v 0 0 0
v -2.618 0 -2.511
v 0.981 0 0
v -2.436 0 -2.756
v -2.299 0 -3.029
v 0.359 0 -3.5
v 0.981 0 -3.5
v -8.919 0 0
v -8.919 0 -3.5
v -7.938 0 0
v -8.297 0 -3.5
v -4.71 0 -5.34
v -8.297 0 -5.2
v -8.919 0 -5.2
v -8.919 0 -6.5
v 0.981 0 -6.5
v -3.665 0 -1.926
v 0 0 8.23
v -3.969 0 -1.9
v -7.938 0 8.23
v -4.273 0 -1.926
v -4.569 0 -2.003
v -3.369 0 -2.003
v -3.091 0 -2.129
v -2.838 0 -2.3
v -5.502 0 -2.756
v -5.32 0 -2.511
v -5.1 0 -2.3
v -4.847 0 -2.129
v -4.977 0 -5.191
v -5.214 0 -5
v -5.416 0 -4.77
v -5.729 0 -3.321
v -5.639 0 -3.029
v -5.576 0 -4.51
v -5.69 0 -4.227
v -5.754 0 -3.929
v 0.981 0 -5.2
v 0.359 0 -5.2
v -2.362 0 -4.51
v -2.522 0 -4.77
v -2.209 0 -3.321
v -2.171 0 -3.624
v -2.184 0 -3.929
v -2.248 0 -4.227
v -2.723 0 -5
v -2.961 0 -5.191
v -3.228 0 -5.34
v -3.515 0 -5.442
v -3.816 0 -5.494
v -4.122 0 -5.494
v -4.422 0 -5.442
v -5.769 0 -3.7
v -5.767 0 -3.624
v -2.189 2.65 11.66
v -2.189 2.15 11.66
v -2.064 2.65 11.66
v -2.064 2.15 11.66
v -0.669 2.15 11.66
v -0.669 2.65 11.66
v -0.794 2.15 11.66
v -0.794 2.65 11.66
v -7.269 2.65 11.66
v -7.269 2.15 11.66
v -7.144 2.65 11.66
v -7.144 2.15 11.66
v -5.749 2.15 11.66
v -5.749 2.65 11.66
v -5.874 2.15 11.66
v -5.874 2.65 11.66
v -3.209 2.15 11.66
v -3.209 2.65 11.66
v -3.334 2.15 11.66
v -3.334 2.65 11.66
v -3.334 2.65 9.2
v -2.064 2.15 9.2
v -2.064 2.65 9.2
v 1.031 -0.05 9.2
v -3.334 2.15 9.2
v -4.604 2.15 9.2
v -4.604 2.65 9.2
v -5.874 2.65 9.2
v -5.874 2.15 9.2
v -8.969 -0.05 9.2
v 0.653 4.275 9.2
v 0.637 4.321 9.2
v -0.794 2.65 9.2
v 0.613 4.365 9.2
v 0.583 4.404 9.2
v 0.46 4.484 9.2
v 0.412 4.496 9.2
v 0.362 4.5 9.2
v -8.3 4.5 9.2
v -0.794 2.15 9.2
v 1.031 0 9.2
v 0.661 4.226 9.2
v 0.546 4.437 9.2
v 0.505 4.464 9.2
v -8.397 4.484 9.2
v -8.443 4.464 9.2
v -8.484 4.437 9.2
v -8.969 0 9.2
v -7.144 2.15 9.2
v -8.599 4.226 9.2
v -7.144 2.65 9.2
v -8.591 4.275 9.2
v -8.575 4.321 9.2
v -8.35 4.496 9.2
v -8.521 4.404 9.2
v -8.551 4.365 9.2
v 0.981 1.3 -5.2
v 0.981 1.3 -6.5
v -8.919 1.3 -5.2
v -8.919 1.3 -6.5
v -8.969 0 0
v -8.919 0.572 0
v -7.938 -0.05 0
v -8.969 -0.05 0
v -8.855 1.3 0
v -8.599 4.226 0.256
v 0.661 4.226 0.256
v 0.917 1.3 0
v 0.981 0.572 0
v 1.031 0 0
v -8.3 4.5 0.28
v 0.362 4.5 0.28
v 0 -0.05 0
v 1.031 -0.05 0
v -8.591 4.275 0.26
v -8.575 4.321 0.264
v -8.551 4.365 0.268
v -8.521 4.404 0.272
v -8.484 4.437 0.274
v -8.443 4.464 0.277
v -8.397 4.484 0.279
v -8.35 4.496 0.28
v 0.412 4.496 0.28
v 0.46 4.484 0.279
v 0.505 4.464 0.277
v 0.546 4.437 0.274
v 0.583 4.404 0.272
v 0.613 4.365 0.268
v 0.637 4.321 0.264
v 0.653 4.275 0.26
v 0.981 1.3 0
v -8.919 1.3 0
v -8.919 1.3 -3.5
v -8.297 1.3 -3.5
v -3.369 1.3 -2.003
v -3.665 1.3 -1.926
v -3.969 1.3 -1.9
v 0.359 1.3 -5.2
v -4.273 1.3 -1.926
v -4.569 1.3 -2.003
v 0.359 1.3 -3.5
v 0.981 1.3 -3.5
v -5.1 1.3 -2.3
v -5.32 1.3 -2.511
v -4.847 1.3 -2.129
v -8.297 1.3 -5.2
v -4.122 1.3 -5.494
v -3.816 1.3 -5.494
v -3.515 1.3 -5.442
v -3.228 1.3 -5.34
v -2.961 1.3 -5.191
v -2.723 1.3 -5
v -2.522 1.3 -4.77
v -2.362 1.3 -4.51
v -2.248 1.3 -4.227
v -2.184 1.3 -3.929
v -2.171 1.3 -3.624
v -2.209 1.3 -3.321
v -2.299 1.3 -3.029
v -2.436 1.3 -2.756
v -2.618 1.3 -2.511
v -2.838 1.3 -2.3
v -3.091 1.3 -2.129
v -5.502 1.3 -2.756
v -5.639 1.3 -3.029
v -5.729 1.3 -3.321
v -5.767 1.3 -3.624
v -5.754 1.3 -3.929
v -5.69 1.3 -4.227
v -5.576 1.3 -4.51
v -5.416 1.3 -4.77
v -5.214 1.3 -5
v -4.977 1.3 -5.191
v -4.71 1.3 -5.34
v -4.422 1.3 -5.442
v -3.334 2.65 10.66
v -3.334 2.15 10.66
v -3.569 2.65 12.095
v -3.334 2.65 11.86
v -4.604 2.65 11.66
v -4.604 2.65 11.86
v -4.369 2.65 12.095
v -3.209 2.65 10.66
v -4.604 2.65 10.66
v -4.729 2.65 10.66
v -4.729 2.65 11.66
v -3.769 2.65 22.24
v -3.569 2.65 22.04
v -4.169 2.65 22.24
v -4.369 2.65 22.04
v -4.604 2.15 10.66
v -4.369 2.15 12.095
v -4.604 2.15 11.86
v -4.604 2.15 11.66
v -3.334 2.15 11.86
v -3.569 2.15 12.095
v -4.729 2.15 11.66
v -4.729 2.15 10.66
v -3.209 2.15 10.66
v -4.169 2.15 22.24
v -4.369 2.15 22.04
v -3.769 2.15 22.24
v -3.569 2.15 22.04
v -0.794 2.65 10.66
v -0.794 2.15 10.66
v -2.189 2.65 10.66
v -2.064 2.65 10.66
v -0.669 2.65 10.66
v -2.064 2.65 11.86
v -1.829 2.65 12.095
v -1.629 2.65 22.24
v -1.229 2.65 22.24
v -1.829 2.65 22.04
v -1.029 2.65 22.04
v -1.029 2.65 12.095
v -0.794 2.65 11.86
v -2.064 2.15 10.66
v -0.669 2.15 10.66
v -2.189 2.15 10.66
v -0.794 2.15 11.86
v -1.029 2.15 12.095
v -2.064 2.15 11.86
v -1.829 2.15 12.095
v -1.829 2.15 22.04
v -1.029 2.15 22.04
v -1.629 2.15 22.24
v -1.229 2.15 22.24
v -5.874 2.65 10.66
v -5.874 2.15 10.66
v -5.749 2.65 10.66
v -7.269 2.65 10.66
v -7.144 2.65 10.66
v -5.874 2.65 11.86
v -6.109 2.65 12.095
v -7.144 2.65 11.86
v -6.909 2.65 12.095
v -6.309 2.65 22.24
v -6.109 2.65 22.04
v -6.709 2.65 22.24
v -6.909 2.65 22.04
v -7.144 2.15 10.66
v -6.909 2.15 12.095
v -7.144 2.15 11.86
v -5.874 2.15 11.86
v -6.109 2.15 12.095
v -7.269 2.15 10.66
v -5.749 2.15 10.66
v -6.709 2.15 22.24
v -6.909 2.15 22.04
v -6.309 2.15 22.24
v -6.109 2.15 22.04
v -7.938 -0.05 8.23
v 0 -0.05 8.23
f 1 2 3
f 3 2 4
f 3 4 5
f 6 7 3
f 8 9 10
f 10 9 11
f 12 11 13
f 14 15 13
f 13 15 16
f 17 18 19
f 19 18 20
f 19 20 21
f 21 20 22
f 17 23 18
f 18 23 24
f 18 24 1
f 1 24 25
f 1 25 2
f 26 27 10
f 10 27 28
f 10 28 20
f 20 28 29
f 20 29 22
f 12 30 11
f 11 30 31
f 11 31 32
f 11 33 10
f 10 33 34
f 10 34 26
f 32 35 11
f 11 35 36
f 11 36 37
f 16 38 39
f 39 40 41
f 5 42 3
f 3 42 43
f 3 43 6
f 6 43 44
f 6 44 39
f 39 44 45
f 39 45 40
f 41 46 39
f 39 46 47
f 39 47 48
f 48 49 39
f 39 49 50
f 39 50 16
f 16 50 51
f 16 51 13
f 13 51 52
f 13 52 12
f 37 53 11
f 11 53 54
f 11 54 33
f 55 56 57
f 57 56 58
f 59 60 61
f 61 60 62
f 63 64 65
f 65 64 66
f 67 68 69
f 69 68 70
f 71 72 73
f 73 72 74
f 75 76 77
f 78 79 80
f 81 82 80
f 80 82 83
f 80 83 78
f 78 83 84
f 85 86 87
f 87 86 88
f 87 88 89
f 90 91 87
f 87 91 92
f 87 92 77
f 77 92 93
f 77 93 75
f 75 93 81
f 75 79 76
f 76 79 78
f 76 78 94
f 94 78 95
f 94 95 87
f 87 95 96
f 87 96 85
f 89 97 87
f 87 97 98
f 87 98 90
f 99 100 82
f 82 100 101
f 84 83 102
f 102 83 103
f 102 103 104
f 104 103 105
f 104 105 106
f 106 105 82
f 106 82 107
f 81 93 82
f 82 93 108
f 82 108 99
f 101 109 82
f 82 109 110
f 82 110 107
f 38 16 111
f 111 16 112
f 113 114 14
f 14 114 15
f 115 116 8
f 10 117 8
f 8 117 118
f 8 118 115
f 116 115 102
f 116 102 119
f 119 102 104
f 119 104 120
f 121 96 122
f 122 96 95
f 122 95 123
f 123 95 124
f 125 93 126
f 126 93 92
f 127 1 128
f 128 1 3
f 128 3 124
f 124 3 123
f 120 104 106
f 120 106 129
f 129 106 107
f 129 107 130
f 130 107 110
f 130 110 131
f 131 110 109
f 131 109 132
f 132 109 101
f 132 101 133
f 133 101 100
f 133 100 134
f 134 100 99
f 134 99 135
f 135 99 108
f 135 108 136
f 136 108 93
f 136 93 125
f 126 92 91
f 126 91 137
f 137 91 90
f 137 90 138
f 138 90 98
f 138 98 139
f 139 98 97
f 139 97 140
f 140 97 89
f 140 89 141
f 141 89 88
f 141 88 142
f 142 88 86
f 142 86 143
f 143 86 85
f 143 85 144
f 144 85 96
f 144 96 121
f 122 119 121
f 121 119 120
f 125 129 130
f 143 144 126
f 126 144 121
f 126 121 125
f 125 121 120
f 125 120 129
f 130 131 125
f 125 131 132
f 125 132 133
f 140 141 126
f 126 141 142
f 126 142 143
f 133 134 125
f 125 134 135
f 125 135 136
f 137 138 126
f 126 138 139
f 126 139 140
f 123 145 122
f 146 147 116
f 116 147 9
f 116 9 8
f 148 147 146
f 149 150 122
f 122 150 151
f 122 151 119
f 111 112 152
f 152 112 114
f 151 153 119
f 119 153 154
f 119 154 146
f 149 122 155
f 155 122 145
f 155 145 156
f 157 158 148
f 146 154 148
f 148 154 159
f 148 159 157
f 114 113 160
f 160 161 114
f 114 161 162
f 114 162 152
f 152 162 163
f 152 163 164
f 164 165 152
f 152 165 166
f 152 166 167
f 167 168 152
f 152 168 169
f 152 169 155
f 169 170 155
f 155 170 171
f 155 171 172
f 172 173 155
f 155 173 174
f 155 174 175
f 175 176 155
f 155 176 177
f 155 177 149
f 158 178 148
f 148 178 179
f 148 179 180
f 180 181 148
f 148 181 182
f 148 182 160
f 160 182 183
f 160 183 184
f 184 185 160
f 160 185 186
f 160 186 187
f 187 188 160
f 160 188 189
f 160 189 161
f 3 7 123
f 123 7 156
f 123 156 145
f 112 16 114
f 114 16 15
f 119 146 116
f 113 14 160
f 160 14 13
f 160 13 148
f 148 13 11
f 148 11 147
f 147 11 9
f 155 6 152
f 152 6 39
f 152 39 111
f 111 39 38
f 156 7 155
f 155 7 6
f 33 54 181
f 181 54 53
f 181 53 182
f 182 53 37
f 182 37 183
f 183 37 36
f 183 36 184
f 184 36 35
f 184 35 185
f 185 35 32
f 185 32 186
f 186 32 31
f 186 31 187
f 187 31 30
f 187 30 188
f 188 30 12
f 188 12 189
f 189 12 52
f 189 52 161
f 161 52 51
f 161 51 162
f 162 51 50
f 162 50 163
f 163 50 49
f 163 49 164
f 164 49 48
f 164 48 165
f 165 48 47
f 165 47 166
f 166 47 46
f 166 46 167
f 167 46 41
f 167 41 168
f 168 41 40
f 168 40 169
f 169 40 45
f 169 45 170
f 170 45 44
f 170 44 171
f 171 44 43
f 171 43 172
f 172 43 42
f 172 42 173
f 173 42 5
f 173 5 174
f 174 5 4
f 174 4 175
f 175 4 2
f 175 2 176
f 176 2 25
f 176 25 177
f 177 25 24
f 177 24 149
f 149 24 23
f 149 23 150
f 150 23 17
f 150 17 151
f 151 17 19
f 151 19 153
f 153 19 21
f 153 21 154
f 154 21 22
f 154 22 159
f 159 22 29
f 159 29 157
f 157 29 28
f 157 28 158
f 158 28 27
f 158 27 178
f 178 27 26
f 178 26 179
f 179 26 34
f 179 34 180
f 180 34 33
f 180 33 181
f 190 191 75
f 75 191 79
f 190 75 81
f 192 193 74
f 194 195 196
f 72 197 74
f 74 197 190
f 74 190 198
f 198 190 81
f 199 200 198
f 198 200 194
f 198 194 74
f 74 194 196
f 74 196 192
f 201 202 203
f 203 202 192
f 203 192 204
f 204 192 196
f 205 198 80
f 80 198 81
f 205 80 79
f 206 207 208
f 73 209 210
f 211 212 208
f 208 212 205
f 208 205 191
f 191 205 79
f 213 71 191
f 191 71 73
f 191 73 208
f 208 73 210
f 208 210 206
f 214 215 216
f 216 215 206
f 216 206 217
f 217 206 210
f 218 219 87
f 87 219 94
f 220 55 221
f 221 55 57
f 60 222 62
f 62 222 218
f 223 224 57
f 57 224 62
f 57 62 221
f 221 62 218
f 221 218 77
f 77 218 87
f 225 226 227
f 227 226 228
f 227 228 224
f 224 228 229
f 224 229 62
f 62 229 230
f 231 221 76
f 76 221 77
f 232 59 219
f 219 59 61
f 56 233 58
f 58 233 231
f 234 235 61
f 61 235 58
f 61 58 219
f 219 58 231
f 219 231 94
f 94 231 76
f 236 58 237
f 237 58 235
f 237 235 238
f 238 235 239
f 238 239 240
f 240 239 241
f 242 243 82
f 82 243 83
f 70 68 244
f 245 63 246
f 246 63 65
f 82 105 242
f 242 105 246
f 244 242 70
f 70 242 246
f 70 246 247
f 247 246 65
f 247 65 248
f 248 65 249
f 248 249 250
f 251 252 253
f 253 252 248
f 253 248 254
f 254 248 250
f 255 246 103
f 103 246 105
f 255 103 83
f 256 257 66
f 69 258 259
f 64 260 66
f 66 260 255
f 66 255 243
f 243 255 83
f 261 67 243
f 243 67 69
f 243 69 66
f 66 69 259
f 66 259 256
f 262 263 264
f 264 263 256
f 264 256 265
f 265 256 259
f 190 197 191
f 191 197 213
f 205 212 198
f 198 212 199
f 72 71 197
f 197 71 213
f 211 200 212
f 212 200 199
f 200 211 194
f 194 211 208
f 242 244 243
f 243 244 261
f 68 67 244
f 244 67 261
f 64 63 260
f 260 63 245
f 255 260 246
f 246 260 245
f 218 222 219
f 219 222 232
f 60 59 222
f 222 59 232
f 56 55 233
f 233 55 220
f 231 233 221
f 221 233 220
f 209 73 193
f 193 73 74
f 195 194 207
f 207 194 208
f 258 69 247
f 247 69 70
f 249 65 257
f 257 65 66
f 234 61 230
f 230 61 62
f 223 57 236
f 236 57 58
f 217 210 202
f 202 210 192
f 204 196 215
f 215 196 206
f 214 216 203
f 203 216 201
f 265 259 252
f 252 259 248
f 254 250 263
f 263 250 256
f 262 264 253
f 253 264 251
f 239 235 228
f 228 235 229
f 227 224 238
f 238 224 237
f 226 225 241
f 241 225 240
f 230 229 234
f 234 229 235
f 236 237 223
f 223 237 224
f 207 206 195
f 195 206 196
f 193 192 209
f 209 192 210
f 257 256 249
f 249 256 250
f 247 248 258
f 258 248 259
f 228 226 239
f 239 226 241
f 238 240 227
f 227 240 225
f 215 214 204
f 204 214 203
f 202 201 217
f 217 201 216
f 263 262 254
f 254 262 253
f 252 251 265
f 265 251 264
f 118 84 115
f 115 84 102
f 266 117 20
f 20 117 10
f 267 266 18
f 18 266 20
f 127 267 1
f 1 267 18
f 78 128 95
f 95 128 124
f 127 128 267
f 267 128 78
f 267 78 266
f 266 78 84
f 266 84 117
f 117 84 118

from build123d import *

# Parameters (mm, degrees)
BOSS_EXTRUDE1_DEPTH  = 9.2
FILLET1_R            = 0.3
CUT_EXTRUDE1_DEPTH   = 19.2
SKETCH3_W            = 9.9
SKETCH3_H            = 1.3
BOSS_EXTRUDE2_DEPTH  = 6.5
SKETCH4_W            = 0.621842352
SKETCH4_H            = 1.7
CUT_EXTRUDE3_DEPTH   = 16.5
SKETCH5_R            = 1.8
CUT_EXTRUDE4_DEPTH   = 16.5
SKETCH8_W            = 1.27
SKETCH8_H            = 0.5
BOSS_EXTRUDE4_DEPTH  = 1.46
SKETCH9_W            = 1.52
SKETCH9_H            = 0.5
BOSS_EXTRUDE5_DEPTH  = 1
SKETCH10_W           = 1.27
SKETCH10_H           = 0.5
BOSS_EXTRUDE6_DEPTH  = 0.5
SKETCH11_W           = 0.8
SKETCH11_H           = 0.5
BOSS_EXTRUDE7_DEPTH  = 10.08
CHAMFER1_SIZE        = 0.3
CHAMFER2_SIZE        = 0.2
BOSS_EXTRUDE10_DEPTH = 0.05


with BuildPart() as part:
    # Sketch1 → Boss-Extrude1 (new body)
    with BuildSketch(Plane.XY):
        Polygon((1.031077827, 0), (-8.968922173, 0), (-8.575223187, 4.5), (0.637378841, 4.5), align=None)
    extrude(amount=BOSS_EXTRUDE1_DEPTH)

    # Fillet1
    fillet1_edges = [part.edges().sort_by_distance(p)[0] for p in [
        (-8.575223187, 4.5, 4.6),
        (0.637378841, 4.5, 4.6),
    ]]
    fillet(fillet1_edges, radius=FILLET1_R)

    # Sketch2 → Cut-Extrude1 (cut)
    with BuildSketch(Plane(origin=(5, 0, 0), x_dir=(0, 0, -1), z_dir=(1, 0, 0))):
        Polygon((0, 4.5), (-0.279963723, 4.5), (0, 1.3), align=None)
    extrude(amount=-CUT_EXTRUDE1_DEPTH, mode=Mode.SUBTRACT)

    # Sketch3 → Boss-Extrude2 (add)
    with BuildSketch(Plane(origin=(0, 0, 0), x_dir=(-1, 0, 0), z_dir=(0, 0, -1))):
        with Locations((3.968922173, 0.65)):
            Rectangle(SKETCH3_W, SKETCH3_H)
    extrude(amount=BOSS_EXTRUDE2_DEPTH)

    # Sketch4 → Cut-Extrude3 (cut)
    with BuildSketch(Plane(origin=(0, 1.3, 0), x_dir=(1, 0, 0), z_dir=(0, 1, 0))):
        with Locations((-8.608000997, 4.35)):
            Rectangle(SKETCH4_W, SKETCH4_H)
        with Locations((0.670156651, 4.35)):
            Rectangle(SKETCH4_W, SKETCH4_H)
    extrude(amount=-CUT_EXTRUDE3_DEPTH, mode=Mode.SUBTRACT)

    # Sketch5 → Cut-Extrude4 (cut)
    with BuildSketch(Plane(origin=(0, 1.3, 0), x_dir=(1, 0, 0), z_dir=(0, 1, 0))):
        with Locations(Location((-3.968922173, 3.7, 0), (0, 0, 270))):
            Circle(SKETCH5_R)
    extrude(amount=-CUT_EXTRUDE4_DEPTH, mode=Mode.SUBTRACT)

    # Sketch8 → Boss-Extrude4 (add)
    with BuildSketch(Plane.XY.offset(9.2)):
        with Locations((-1.428922173, 2.4)):
            Rectangle(SKETCH8_W, SKETCH8_H)
        with Locations((-3.968922173, 2.4)):
            Rectangle(SKETCH8_W, SKETCH8_H)
        with Locations((-6.508922173, 2.4)):
            Rectangle(SKETCH8_W, SKETCH8_H)
    extrude(amount=BOSS_EXTRUDE4_DEPTH)

    # Sketch9 → Boss-Extrude5 (add)
    with BuildSketch(Plane.XY.offset(10.66)):
        with Locations((-3.968922173, 2.4)):
            Rectangle(SKETCH9_W, SKETCH9_H)
        with Locations((-1.428922173, 2.4)):
            Rectangle(SKETCH9_W, SKETCH9_H)
        with Locations((-6.508922173, 2.4)):
            Rectangle(SKETCH9_W, SKETCH9_H)
    extrude(amount=BOSS_EXTRUDE5_DEPTH)

    # Sketch10 → Boss-Extrude6 (add)
    with BuildSketch(Plane.XY.offset(11.66)):
        with Locations((-3.968922173, 2.4)):
            Rectangle(SKETCH10_W, SKETCH10_H)
        with Locations((-1.428922173, 2.4)):
            Rectangle(SKETCH10_W, SKETCH10_H)
        with Locations((-6.508922173, 2.4)):
            Rectangle(SKETCH10_W, SKETCH10_H)
    extrude(amount=BOSS_EXTRUDE6_DEPTH)

    # Sketch11 → Boss-Extrude7 (add)
    with BuildSketch(Plane.XY.offset(12.16)):
        with Locations((-3.968922173, 2.4)):
            Rectangle(SKETCH11_W, SKETCH11_H)
        with Locations((-1.428922173, 2.4)):
            Rectangle(SKETCH11_W, SKETCH11_H)
        with Locations((-6.508922173, 2.4)):
            Rectangle(SKETCH11_W, SKETCH11_H)
    extrude(amount=BOSS_EXTRUDE7_DEPTH)

    # Chamfer1
    # the kernel refuses this chamfer: 0.3 mm, written as the material it takes off along each edge
    with BuildSketch(Plane(origin=(-0.793922173, 3.421504896, 12.16), x_dir=(-0.9996219169112968, 0, 0.027495876610584464), z_dir=(0, -1, 0))) as chamfer1_piece_1_section:
        Polygon((CHAMFER1_SIZE * 0.999621916911, CHAMFER1_SIZE * 0.0274958766106), (-CHAMFER1_SIZE * 0.0274958766106, CHAMFER1_SIZE * 0.999621916911), (0, 0), align=None)
    chamfer1_piece_1 = extrude(amount=2.043009793, mode=Mode.PRIVATE)
    chamfer1_piece_1 = split(chamfer1_piece_1, bisect_by=Plane(origin=(-1.028922173, 2.4, 12.055687512), z_dir=(1, 0, 0)), keep=Keep.TOP, mode=Mode.PRIVATE)
    add(chamfer1_piece_1, mode=Mode.SUBTRACT)
    with BuildSketch(Plane(origin=(-2.063922173, 1.378495104, 12.16), x_dir=(-0.027495876610585904, 0, -0.9996219169112968), z_dir=(0, 1, 0))) as chamfer1_piece_2_section:
        Polygon((CHAMFER1_SIZE * 0.999621916911, -CHAMFER1_SIZE * 0.0274958766106), (-CHAMFER1_SIZE * 0.0274958766106, -CHAMFER1_SIZE * 0.999621916911), (0, 0), align=None)
    chamfer1_piece_2 = extrude(amount=2.043009793, mode=Mode.PRIVATE)
    chamfer1_piece_2 = split(chamfer1_piece_2, bisect_by=Plane(origin=(-1.828922173, 2.4, 12.055687512), z_dir=(-1, 0, 0)), keep=Keep.TOP, mode=Mode.PRIVATE)
    add(chamfer1_piece_2, mode=Mode.SUBTRACT)
    with BuildSketch(Plane(origin=(-4.603922173, 1.378495104, 12.16), x_dir=(-0.027495876610587344, 0, -0.9996219169112968), z_dir=(0, 1, 0))) as chamfer1_piece_3_section:
        Polygon((CHAMFER1_SIZE * 0.999621916911, -CHAMFER1_SIZE * 0.0274958766106), (-CHAMFER1_SIZE * 0.0274958766106, -CHAMFER1_SIZE * 0.999621916911), (0, 0), align=None)
    chamfer1_piece_3 = extrude(amount=2.043009793, mode=Mode.PRIVATE)
    chamfer1_piece_3 = split(chamfer1_piece_3, bisect_by=Plane(origin=(-4.368922173, 2.4, 12.055687512), z_dir=(-1, 0, 0)), keep=Keep.TOP, mode=Mode.PRIVATE)
    add(chamfer1_piece_3, mode=Mode.SUBTRACT)
    with BuildSketch(Plane(origin=(-3.333922173, 3.421504896, 12.16), x_dir=(-0.9996219169112968, 0, 0.027495876610584506), z_dir=(0, -1, 0))) as chamfer1_piece_4_section:
        Polygon((CHAMFER1_SIZE * 0.999621916911, CHAMFER1_SIZE * 0.0274958766106), (-CHAMFER1_SIZE * 0.0274958766106, CHAMFER1_SIZE * 0.999621916911), (0, 0), align=None)
    chamfer1_piece_4 = extrude(amount=2.043009793, mode=Mode.PRIVATE)
    chamfer1_piece_4 = split(chamfer1_piece_4, bisect_by=Plane(origin=(-3.568922173, 2.4, 12.055687512), z_dir=(1, 0, 0)), keep=Keep.TOP, mode=Mode.PRIVATE)
    add(chamfer1_piece_4, mode=Mode.SUBTRACT)
    with BuildSketch(Plane(origin=(-7.143922173, 1.378495104, 12.16), x_dir=(-0.027495876610587344, 0, -0.9996219169112968), z_dir=(0, 1, 0))) as chamfer1_piece_5_section:
        Polygon((CHAMFER1_SIZE * 0.999621916911, -CHAMFER1_SIZE * 0.0274958766106), (-CHAMFER1_SIZE * 0.0274958766106, -CHAMFER1_SIZE * 0.999621916911), (0, 0), align=None)
    chamfer1_piece_5 = extrude(amount=2.043009793, mode=Mode.PRIVATE)
    chamfer1_piece_5 = split(chamfer1_piece_5, bisect_by=Plane(origin=(-6.908922173, 2.4, 12.055687512), z_dir=(-1, 0, 0)), keep=Keep.TOP, mode=Mode.PRIVATE)
    add(chamfer1_piece_5, mode=Mode.SUBTRACT)
    with BuildSketch(Plane(origin=(-5.873922173, 3.421504896, 12.16), x_dir=(-0.9996219169112968, 0, 0.027495876610584464), z_dir=(0, -1, 0))) as chamfer1_piece_6_section:
        Polygon((CHAMFER1_SIZE * 0.999621916911, CHAMFER1_SIZE * 0.0274958766106), (-CHAMFER1_SIZE * 0.0274958766106, CHAMFER1_SIZE * 0.999621916911), (0, 0), align=None)
    chamfer1_piece_6 = extrude(amount=2.043009793, mode=Mode.PRIVATE)
    chamfer1_piece_6 = split(chamfer1_piece_6, bisect_by=Plane(origin=(-6.108922173, 2.4, 12.055687512), z_dir=(1, 0, 0)), keep=Keep.TOP, mode=Mode.PRIVATE)
    add(chamfer1_piece_6, mode=Mode.SUBTRACT)

    # Chamfer2
    chamfer2_edges = [part.edges().sort_by_distance(p)[0] for p in [
        (-3.568922173, 2.4, 22.24),
        (-4.368922173, 2.4, 22.24),
        (-6.108922173, 2.4, 22.24),
        (-6.908922173, 2.4, 22.24),
        (-1.028922173, 2.4, 22.24),
        (-1.828922173, 2.4, 22.24),
    ]]
    chamfer(chamfer2_edges, length=CHAMFER2_SIZE)

    # Sketch15 → Boss-Extrude10 (add)
    with BuildSketch(Plane(origin=(0, 0, 0), x_dir=(-1, 0, 0), z_dir=(0, -1, 0))):
        Polygon((8.968922173, 0), (7.937844346, 0), (7.937844346, -8.229840369), (0, -8.229840369), (0, 0), (-1.031077827, 0), (-1.031077827, -9.2), (8.968922173, -9.2), align=None)
    extrude(amount=BOSS_EXTRUDE10_DEPTH)


solid = part.part
